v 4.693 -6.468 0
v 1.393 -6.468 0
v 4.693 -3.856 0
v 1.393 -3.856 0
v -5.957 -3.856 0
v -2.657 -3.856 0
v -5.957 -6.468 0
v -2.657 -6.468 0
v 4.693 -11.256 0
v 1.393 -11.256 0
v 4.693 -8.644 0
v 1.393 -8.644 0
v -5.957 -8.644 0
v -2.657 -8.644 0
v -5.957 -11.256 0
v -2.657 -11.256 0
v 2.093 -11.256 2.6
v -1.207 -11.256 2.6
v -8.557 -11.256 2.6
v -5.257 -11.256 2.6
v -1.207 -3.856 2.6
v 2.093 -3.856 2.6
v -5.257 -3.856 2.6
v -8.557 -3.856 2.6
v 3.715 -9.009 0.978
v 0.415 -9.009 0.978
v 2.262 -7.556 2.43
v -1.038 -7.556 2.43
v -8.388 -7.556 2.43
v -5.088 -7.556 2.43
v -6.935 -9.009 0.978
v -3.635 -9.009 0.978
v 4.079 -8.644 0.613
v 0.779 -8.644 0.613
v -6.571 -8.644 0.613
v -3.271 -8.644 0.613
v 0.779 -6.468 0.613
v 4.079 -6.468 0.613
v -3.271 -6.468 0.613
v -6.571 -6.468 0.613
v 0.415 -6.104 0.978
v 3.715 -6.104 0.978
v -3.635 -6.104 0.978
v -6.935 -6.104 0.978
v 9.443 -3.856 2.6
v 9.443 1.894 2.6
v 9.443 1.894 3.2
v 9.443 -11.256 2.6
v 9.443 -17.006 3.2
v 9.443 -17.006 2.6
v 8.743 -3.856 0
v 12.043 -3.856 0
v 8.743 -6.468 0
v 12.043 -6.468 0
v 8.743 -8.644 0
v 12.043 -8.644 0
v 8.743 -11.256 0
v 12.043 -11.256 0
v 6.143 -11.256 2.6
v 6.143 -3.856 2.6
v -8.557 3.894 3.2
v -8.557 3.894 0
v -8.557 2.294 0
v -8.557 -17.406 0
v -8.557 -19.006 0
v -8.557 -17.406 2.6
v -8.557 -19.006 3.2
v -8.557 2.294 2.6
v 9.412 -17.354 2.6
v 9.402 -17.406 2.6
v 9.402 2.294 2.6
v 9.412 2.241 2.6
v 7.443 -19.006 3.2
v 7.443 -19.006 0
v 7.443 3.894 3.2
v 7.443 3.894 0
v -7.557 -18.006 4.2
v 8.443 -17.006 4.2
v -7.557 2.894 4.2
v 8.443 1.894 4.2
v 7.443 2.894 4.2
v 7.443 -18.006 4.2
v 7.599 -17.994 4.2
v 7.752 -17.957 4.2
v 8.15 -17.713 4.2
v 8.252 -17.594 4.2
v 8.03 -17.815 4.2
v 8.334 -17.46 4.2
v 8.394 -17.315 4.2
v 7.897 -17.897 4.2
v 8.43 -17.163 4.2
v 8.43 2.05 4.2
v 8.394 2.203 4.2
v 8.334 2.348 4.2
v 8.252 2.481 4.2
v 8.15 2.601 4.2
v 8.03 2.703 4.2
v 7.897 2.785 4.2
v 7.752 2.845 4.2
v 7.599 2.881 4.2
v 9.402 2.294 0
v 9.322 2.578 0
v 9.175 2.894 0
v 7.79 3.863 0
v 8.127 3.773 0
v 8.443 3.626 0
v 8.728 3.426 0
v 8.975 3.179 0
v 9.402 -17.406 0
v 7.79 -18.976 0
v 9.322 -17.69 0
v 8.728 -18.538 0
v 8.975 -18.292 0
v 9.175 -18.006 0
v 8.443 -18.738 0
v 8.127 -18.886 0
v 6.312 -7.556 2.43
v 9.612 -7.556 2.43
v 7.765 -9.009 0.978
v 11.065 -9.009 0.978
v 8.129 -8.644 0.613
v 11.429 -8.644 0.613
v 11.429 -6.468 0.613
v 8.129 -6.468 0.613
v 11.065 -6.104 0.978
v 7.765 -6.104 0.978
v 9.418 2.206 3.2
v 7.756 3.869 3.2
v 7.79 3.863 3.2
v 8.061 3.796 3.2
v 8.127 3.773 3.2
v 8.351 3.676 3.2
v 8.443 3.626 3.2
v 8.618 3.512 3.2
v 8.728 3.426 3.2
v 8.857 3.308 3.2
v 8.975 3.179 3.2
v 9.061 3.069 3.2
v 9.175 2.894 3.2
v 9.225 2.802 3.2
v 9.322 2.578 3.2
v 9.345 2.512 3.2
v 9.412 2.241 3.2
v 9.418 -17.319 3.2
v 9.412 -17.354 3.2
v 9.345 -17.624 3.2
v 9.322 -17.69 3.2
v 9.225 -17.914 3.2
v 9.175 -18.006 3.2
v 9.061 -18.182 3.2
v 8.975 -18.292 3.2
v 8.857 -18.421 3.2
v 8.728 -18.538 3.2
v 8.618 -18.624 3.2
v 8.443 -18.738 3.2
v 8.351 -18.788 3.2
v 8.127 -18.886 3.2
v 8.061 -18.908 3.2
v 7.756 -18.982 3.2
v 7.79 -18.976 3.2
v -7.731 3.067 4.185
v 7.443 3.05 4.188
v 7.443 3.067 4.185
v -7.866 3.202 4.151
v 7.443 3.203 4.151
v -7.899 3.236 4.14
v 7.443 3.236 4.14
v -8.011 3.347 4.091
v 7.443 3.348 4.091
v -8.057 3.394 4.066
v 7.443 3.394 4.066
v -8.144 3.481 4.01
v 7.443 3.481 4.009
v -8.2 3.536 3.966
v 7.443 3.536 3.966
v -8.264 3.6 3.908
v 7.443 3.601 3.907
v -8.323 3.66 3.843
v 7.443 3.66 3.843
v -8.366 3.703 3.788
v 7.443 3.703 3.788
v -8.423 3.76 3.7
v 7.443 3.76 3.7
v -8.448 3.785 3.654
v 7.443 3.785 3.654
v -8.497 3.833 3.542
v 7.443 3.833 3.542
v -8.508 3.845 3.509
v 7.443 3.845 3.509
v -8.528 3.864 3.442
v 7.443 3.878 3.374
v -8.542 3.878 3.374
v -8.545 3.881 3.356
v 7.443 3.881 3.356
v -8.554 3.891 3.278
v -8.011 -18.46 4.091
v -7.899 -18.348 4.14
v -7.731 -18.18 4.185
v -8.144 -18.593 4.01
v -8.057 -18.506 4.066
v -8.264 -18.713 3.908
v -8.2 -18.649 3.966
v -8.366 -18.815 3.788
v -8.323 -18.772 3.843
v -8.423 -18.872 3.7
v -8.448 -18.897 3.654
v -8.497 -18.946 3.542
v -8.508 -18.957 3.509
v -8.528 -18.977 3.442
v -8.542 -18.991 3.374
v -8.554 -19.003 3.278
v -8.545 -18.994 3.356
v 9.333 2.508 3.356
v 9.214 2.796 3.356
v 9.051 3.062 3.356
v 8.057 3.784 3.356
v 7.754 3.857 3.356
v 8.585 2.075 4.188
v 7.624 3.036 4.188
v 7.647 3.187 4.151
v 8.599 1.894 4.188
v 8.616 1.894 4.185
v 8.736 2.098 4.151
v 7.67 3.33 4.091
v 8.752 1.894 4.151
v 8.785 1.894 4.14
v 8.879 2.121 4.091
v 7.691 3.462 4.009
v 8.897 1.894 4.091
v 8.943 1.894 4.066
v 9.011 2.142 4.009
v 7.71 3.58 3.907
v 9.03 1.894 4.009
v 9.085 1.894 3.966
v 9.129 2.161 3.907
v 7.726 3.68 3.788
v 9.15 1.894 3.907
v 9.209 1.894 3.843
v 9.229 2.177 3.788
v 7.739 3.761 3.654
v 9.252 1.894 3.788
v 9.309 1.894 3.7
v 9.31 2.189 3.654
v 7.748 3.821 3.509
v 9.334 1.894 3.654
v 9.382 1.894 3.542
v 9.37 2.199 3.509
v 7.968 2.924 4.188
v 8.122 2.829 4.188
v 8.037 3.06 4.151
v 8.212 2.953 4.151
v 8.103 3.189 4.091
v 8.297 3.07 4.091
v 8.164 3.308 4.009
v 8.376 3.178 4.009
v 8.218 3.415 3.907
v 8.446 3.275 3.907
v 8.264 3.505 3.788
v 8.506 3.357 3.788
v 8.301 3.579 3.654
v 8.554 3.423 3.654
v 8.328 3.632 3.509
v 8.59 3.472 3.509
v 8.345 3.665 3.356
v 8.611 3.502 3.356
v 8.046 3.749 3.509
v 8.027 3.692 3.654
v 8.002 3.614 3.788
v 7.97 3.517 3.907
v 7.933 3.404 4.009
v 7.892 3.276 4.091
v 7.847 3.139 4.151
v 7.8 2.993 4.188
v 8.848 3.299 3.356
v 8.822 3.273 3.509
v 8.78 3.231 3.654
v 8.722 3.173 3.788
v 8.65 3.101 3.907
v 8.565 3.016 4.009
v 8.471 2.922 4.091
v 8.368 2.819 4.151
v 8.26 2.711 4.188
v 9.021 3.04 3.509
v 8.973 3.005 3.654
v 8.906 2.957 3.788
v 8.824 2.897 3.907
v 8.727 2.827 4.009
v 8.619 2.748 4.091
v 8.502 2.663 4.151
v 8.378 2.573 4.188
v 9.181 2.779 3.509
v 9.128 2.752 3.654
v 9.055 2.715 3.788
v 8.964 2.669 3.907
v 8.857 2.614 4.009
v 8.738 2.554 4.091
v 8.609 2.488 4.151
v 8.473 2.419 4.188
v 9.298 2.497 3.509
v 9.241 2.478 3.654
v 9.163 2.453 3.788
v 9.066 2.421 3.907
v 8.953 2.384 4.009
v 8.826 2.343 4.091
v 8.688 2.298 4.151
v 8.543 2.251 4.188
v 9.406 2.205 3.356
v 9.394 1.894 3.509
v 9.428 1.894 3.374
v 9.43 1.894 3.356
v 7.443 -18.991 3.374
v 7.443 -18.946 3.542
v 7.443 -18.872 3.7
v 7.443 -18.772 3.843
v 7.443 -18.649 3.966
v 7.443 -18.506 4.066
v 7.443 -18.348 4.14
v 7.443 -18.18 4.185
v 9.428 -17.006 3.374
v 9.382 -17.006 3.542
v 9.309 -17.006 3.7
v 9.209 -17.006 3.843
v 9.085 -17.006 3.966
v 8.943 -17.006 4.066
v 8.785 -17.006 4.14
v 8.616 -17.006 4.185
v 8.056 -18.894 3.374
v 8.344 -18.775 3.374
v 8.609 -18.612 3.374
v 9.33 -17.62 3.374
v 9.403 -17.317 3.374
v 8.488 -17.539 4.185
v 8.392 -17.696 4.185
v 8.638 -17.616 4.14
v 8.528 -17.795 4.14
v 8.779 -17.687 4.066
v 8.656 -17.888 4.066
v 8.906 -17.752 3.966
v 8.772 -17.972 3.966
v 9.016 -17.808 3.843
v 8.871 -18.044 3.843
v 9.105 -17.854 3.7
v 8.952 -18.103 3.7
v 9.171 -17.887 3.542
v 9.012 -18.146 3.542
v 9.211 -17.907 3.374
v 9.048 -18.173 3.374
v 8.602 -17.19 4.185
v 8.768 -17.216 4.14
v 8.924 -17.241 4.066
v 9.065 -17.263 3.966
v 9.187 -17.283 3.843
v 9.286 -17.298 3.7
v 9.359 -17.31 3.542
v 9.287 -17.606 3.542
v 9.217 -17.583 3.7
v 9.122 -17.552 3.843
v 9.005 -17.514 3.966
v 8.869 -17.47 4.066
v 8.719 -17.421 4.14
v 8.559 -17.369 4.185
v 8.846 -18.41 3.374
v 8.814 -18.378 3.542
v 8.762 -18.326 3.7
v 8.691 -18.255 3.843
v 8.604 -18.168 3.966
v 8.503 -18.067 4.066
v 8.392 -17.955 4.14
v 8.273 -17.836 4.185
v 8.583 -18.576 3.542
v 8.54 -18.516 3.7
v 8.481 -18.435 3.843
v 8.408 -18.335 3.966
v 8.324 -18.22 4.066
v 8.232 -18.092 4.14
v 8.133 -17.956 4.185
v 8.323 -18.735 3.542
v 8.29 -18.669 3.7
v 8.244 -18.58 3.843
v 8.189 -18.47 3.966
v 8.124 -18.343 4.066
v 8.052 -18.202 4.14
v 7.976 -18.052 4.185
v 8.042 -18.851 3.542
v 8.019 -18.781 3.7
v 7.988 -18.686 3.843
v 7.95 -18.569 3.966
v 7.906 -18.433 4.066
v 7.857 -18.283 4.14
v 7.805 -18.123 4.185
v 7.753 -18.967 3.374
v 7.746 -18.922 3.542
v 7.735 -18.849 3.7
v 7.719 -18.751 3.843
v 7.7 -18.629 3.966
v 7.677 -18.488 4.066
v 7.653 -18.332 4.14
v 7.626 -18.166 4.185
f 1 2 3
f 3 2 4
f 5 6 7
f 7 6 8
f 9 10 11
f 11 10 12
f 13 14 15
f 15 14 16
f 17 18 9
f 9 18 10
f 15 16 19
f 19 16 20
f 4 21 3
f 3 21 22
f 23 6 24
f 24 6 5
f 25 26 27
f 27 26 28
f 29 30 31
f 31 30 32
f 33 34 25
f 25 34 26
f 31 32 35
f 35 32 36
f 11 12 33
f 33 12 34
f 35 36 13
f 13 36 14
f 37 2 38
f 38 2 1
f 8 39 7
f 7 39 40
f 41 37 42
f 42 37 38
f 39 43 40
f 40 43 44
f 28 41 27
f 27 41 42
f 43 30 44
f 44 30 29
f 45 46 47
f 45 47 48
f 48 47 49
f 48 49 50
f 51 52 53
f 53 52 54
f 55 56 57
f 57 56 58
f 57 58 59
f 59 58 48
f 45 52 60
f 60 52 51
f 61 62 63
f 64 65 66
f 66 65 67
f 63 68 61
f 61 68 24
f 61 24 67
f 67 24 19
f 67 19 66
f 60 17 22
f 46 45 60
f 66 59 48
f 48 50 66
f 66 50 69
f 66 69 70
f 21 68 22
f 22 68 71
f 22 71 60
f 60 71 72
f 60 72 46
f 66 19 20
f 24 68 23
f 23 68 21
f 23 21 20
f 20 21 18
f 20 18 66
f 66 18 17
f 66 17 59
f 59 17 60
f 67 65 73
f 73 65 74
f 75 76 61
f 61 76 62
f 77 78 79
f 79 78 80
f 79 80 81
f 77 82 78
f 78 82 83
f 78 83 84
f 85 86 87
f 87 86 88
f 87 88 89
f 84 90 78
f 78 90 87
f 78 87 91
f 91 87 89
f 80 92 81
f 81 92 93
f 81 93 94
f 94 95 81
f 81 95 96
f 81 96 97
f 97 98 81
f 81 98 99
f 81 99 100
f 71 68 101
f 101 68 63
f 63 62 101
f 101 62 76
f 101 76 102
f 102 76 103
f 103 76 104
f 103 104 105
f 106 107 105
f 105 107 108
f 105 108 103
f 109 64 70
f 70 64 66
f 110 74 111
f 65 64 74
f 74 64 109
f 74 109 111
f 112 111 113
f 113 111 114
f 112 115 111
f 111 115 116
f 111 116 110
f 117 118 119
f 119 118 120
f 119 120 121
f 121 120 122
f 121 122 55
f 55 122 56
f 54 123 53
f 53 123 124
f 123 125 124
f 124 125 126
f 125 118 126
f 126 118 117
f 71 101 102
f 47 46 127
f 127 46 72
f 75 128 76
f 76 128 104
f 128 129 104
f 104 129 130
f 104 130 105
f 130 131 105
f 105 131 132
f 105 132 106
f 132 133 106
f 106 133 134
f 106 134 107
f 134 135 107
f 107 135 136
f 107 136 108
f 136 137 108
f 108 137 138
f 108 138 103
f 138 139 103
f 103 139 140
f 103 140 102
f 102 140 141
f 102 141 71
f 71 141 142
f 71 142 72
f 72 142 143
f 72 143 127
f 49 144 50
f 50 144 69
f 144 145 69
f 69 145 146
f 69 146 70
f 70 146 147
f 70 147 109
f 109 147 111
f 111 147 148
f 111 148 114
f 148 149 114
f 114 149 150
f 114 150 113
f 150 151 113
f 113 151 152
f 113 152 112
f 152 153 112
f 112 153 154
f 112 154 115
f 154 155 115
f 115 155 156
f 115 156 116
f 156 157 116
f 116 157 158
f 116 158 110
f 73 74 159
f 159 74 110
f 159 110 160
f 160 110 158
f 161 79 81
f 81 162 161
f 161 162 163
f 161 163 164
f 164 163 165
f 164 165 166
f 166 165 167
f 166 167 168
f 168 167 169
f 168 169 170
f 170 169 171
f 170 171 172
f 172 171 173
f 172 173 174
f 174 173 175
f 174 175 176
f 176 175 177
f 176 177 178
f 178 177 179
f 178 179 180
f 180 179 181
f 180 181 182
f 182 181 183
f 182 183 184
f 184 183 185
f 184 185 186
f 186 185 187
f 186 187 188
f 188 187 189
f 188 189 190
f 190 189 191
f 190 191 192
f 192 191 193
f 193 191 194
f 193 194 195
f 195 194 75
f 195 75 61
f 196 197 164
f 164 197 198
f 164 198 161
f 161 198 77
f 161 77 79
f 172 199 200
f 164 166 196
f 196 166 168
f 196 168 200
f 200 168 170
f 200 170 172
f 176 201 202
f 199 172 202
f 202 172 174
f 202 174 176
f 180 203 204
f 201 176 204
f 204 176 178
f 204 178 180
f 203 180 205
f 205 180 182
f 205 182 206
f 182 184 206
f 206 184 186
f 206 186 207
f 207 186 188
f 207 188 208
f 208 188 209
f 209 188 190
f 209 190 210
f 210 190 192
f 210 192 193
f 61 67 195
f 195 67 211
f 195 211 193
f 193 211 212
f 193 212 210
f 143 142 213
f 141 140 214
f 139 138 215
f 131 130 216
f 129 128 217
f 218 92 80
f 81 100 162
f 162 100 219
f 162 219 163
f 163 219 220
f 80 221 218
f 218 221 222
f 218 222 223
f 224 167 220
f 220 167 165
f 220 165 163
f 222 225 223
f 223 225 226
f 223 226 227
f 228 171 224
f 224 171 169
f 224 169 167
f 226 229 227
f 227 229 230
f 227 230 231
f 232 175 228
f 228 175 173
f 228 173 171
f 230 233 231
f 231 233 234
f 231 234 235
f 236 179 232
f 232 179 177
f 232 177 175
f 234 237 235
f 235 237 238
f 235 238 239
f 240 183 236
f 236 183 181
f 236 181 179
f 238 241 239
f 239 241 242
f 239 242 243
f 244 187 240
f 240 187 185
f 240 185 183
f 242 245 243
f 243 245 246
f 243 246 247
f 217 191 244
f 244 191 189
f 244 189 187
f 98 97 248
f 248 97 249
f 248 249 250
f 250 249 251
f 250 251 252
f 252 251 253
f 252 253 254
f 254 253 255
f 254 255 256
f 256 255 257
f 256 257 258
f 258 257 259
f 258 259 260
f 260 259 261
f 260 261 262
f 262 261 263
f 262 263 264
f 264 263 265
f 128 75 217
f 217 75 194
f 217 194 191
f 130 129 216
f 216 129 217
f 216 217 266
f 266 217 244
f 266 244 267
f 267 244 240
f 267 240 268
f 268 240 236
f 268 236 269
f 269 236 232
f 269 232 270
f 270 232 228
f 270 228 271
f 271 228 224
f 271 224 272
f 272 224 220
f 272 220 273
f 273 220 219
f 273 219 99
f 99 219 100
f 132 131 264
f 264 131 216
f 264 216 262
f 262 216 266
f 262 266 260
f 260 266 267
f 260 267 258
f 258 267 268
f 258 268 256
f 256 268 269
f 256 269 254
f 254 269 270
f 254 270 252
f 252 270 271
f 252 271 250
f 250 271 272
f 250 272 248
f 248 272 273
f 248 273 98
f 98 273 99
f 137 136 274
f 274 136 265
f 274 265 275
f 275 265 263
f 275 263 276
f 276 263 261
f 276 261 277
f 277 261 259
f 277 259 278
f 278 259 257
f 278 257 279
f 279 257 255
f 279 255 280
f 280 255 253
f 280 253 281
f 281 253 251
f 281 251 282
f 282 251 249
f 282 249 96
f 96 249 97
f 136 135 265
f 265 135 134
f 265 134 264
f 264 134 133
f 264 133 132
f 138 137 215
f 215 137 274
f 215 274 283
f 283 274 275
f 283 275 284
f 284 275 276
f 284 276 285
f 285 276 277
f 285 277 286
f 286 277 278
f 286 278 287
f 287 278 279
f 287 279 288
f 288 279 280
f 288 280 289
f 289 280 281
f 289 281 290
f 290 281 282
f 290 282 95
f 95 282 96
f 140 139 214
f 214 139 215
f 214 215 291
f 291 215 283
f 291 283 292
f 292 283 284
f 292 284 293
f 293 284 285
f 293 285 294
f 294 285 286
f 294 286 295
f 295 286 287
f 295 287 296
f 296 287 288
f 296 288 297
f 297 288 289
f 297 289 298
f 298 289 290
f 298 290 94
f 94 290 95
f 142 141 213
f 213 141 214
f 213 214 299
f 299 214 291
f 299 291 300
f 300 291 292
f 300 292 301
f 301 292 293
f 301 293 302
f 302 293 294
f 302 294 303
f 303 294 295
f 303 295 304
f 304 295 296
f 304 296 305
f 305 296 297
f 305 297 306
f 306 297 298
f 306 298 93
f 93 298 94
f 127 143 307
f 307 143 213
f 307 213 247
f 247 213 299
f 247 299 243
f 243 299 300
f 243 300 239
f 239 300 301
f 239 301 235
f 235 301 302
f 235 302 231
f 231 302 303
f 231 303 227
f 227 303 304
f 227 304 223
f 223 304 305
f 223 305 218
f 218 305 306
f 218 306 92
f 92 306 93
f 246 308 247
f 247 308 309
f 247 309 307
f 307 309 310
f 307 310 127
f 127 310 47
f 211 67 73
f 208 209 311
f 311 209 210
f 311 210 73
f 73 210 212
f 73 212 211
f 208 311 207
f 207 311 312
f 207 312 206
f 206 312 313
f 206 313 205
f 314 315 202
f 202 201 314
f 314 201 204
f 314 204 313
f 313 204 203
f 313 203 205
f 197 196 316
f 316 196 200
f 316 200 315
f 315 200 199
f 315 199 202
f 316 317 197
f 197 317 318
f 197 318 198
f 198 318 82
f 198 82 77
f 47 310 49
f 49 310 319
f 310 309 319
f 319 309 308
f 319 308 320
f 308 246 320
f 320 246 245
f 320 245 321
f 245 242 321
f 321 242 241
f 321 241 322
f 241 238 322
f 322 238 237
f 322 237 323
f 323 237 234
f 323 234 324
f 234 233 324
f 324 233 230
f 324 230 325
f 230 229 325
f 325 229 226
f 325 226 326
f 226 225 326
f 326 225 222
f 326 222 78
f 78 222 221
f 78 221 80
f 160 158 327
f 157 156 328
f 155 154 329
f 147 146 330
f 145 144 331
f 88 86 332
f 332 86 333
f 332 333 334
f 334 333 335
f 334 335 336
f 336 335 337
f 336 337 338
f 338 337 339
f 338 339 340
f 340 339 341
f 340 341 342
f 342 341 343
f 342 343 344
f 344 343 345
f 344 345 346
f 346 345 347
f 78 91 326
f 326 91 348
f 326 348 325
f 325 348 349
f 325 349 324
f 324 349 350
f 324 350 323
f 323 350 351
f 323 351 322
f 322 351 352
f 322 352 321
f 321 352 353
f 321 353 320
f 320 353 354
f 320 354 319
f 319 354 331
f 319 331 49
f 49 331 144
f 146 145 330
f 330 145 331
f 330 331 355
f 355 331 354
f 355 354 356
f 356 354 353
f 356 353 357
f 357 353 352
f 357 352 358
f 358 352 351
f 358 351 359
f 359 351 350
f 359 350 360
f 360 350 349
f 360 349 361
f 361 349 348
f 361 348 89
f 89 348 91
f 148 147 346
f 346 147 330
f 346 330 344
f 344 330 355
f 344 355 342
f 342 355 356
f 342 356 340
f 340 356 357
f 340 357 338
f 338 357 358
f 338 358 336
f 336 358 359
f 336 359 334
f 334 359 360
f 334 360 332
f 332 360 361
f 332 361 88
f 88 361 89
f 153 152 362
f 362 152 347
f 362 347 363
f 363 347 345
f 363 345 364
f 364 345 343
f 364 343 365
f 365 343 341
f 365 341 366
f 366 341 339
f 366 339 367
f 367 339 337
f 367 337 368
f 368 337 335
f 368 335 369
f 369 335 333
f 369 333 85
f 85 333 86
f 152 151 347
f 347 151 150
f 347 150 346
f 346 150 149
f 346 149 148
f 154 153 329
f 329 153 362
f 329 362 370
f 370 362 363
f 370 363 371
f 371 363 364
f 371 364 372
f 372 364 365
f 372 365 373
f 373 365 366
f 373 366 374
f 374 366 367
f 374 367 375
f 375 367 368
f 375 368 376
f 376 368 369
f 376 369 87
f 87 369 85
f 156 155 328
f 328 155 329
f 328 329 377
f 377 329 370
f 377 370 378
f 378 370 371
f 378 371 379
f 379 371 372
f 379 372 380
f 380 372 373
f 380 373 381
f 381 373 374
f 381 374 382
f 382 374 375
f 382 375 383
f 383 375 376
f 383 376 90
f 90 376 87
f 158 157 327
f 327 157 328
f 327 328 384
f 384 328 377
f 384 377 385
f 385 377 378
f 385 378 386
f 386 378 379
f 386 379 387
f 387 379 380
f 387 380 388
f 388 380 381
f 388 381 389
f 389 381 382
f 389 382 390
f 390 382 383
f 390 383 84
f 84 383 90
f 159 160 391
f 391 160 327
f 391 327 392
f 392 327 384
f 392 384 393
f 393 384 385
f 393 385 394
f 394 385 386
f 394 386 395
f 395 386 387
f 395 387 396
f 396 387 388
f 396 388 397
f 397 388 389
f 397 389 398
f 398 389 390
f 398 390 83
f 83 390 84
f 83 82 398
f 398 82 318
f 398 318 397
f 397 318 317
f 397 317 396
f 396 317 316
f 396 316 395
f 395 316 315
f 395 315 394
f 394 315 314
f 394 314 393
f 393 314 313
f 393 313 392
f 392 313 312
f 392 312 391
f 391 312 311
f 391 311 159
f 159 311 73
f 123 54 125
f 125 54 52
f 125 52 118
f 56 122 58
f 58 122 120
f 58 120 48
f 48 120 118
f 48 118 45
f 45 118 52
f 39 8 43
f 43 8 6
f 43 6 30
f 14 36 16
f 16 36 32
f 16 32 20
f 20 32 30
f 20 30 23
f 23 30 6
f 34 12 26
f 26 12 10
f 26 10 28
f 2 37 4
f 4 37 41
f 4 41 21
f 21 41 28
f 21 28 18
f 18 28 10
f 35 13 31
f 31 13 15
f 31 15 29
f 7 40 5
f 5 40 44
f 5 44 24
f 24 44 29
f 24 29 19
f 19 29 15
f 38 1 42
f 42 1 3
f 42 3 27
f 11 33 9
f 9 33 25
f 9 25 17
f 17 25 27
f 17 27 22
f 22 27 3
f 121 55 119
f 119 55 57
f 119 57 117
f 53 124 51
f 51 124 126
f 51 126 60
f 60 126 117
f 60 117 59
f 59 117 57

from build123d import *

# Parameters (mm, degrees)
SKETCH1_W               = 3.3
SKETCH1_H               = 7.4
SKETCH1_W_2             = 18
SKETCH1_H_2             = 1.6
BOSS_EXTRUDE1_DEPTH     = 2.6
SKETCH3_W               = 18
SKETCH3_H               = 22.9
BOSS_EXTRUDE2_DEPTH     = 1.6
CUT_EXTRUDE1_DEPTH      = 27.511924597
CUT_EXTRUDE1_DEPTH_BACK = 27.511924597
FILLET1_R               = 2
FILLET2_R               = 1
BOSS_EXTRUDE3_DEPTH     = 5
CUT_EXTRUDE2_DEPTH      = 10


with BuildPart() as part:
    # Sketch1 → Boss-Extrude1 (new body)
    with BuildSketch(Plane.XY):
        with Locations((0.442709082, -7.556371191)):
            Rectangle(SKETCH1_W, SKETCH1_H)
        with Locations((7.792709082, -7.556371191)):
            Rectangle(SKETCH1_W, SKETCH1_H)
        with Locations((0.442709082, 3.093628809)):
            Rectangle(SKETCH1_W_2, SKETCH1_H_2)
        with Locations((0.442709082, -18.206371191)):
            Rectangle(SKETCH1_W_2, SKETCH1_H_2)
        with Locations((0.442709082, -7.556371191)):
            Rectangle(SKETCH1_W_2, SKETCH1_H)
    extrude(amount=BOSS_EXTRUDE1_DEPTH)

    # Sketch3 → Boss-Extrude2 (add)
    with BuildSketch(Plane.XY.offset(2.6)):
        with Locations((0.442709082, -7.556371191)):
            Rectangle(SKETCH3_W, SKETCH3_H)
    extrude(amount=BOSS_EXTRUDE2_DEPTH)

    # Sketch4 → Cut-Extrude1 (cut, two sides: drawn at the far end of the back side and taken through both)
    with BuildSketch(Plane.ZY.offset(8.557290918).offset(-CUT_EXTRUDE1_DEPTH_BACK)):
        Polygon((1.342435563, -8.644254243), (0.613371363, -8.644254243), (0.977903463, -9.008786343), align=None)
        Polygon((2.430318615, -7.556371191), (1.342435563, -6.468488139), (1.342435563, -8.644254243), align=None)
        Polygon((0.977903463, -6.103956039), (0.613371363, -6.468488139), (1.342435563, -6.468488139), align=None)
        Polygon((0.613371363, -6.468488139), (0, -7.081859502), (0, -8.03088288), (0.613371363, -8.644254243), (1.342435563, -8.644254243), (1.342435563, -6.468488139), align=None)
        Polygon((0, -6.468488139), (0, -7.081859502), (0.613371363, -6.468488139), align=None)
        Polygon((0.613371363, -8.644254243), (0, -8.03088288), (0, -8.644254243), align=None)
    extrude(amount=CUT_EXTRUDE1_DEPTH + CUT_EXTRUDE1_DEPTH_BACK, mode=Mode.SUBTRACT)

    # Fillet1
    fillet1_edges = [part.edges().sort_by_distance(p)[0] for p in [
        (9.442709082, 3.893628809, 2.1),
        (9.442709082, -19.006371191, 2.1),
    ]]
    fillet(fillet1_edges, radius=FILLET1_R)

    # Fillet2
    fillet2_edges = [part.edges().sort_by_distance(p)[0] for p in [
        (9.442709082, -7.556371191, 4.2),
        (8.856922645, -18.420584754, 4.2),
        (8.856922645, 3.307842371, 4.2),
        (-8.557290918, -7.556371191, 4.2),
        (-0.557290918, -19.006371191, 4.2),
        (-0.557290918, 3.893628809, 4.2),
    ]]
    fillet(fillet2_edges, radius=FILLET2_R)

    # Sketch6 → Boss-Extrude3 (add)
    with BuildSketch(Plane(origin=(9.442709082, 0, 0), x_dir=(0, 0, -1), z_dir=(1, 0, 0))):
        Polygon((-2.6, -3.856371191), (-2.6, -11.256371191), (0, -11.256371191), (0, -8.644254243), (-0.613371363, -8.644254243), (-0.977903463, -9.008786343), (-2.430318615, -7.556371191), (-0.977903463, -6.103956039), (-0.613371363, -6.468488139), (0, -6.468488139), (0, -3.856371191), align=None)
    extrude(amount=BOSS_EXTRUDE3_DEPTH)

    # Sketch5 → Cut-Extrude2 (cut)
    with BuildSketch(Plane.XZ.offset(11.256371191)):
        Polygon((-5.257290918, 2.6), (-1.207290918, 2.6), (1.809394507, -0.416685424), (-2.240605493, -0.416685424), align=None)
        Polygon((2.092709082, 2.6), (6.142709082, 2.6), (10.446710416, -1.704001333), (6.396710416, -1.704001333), align=None)
        Polygon((-8.557290918, 2.6), (-13.200539382, 2.6), (-10.121786084, -0.478753297), (-5.47853762, -0.478753297), align=None)
        Polygon((9.442709082, 2.6), (15.456496685, 2.6), (19.467588869, -1.411092184), (13.453801266, -1.411092184), align=None)
    extrude(amount=-CUT_EXTRUDE2_DEPTH, mode=Mode.SUBTRACT)


solid = part.part
